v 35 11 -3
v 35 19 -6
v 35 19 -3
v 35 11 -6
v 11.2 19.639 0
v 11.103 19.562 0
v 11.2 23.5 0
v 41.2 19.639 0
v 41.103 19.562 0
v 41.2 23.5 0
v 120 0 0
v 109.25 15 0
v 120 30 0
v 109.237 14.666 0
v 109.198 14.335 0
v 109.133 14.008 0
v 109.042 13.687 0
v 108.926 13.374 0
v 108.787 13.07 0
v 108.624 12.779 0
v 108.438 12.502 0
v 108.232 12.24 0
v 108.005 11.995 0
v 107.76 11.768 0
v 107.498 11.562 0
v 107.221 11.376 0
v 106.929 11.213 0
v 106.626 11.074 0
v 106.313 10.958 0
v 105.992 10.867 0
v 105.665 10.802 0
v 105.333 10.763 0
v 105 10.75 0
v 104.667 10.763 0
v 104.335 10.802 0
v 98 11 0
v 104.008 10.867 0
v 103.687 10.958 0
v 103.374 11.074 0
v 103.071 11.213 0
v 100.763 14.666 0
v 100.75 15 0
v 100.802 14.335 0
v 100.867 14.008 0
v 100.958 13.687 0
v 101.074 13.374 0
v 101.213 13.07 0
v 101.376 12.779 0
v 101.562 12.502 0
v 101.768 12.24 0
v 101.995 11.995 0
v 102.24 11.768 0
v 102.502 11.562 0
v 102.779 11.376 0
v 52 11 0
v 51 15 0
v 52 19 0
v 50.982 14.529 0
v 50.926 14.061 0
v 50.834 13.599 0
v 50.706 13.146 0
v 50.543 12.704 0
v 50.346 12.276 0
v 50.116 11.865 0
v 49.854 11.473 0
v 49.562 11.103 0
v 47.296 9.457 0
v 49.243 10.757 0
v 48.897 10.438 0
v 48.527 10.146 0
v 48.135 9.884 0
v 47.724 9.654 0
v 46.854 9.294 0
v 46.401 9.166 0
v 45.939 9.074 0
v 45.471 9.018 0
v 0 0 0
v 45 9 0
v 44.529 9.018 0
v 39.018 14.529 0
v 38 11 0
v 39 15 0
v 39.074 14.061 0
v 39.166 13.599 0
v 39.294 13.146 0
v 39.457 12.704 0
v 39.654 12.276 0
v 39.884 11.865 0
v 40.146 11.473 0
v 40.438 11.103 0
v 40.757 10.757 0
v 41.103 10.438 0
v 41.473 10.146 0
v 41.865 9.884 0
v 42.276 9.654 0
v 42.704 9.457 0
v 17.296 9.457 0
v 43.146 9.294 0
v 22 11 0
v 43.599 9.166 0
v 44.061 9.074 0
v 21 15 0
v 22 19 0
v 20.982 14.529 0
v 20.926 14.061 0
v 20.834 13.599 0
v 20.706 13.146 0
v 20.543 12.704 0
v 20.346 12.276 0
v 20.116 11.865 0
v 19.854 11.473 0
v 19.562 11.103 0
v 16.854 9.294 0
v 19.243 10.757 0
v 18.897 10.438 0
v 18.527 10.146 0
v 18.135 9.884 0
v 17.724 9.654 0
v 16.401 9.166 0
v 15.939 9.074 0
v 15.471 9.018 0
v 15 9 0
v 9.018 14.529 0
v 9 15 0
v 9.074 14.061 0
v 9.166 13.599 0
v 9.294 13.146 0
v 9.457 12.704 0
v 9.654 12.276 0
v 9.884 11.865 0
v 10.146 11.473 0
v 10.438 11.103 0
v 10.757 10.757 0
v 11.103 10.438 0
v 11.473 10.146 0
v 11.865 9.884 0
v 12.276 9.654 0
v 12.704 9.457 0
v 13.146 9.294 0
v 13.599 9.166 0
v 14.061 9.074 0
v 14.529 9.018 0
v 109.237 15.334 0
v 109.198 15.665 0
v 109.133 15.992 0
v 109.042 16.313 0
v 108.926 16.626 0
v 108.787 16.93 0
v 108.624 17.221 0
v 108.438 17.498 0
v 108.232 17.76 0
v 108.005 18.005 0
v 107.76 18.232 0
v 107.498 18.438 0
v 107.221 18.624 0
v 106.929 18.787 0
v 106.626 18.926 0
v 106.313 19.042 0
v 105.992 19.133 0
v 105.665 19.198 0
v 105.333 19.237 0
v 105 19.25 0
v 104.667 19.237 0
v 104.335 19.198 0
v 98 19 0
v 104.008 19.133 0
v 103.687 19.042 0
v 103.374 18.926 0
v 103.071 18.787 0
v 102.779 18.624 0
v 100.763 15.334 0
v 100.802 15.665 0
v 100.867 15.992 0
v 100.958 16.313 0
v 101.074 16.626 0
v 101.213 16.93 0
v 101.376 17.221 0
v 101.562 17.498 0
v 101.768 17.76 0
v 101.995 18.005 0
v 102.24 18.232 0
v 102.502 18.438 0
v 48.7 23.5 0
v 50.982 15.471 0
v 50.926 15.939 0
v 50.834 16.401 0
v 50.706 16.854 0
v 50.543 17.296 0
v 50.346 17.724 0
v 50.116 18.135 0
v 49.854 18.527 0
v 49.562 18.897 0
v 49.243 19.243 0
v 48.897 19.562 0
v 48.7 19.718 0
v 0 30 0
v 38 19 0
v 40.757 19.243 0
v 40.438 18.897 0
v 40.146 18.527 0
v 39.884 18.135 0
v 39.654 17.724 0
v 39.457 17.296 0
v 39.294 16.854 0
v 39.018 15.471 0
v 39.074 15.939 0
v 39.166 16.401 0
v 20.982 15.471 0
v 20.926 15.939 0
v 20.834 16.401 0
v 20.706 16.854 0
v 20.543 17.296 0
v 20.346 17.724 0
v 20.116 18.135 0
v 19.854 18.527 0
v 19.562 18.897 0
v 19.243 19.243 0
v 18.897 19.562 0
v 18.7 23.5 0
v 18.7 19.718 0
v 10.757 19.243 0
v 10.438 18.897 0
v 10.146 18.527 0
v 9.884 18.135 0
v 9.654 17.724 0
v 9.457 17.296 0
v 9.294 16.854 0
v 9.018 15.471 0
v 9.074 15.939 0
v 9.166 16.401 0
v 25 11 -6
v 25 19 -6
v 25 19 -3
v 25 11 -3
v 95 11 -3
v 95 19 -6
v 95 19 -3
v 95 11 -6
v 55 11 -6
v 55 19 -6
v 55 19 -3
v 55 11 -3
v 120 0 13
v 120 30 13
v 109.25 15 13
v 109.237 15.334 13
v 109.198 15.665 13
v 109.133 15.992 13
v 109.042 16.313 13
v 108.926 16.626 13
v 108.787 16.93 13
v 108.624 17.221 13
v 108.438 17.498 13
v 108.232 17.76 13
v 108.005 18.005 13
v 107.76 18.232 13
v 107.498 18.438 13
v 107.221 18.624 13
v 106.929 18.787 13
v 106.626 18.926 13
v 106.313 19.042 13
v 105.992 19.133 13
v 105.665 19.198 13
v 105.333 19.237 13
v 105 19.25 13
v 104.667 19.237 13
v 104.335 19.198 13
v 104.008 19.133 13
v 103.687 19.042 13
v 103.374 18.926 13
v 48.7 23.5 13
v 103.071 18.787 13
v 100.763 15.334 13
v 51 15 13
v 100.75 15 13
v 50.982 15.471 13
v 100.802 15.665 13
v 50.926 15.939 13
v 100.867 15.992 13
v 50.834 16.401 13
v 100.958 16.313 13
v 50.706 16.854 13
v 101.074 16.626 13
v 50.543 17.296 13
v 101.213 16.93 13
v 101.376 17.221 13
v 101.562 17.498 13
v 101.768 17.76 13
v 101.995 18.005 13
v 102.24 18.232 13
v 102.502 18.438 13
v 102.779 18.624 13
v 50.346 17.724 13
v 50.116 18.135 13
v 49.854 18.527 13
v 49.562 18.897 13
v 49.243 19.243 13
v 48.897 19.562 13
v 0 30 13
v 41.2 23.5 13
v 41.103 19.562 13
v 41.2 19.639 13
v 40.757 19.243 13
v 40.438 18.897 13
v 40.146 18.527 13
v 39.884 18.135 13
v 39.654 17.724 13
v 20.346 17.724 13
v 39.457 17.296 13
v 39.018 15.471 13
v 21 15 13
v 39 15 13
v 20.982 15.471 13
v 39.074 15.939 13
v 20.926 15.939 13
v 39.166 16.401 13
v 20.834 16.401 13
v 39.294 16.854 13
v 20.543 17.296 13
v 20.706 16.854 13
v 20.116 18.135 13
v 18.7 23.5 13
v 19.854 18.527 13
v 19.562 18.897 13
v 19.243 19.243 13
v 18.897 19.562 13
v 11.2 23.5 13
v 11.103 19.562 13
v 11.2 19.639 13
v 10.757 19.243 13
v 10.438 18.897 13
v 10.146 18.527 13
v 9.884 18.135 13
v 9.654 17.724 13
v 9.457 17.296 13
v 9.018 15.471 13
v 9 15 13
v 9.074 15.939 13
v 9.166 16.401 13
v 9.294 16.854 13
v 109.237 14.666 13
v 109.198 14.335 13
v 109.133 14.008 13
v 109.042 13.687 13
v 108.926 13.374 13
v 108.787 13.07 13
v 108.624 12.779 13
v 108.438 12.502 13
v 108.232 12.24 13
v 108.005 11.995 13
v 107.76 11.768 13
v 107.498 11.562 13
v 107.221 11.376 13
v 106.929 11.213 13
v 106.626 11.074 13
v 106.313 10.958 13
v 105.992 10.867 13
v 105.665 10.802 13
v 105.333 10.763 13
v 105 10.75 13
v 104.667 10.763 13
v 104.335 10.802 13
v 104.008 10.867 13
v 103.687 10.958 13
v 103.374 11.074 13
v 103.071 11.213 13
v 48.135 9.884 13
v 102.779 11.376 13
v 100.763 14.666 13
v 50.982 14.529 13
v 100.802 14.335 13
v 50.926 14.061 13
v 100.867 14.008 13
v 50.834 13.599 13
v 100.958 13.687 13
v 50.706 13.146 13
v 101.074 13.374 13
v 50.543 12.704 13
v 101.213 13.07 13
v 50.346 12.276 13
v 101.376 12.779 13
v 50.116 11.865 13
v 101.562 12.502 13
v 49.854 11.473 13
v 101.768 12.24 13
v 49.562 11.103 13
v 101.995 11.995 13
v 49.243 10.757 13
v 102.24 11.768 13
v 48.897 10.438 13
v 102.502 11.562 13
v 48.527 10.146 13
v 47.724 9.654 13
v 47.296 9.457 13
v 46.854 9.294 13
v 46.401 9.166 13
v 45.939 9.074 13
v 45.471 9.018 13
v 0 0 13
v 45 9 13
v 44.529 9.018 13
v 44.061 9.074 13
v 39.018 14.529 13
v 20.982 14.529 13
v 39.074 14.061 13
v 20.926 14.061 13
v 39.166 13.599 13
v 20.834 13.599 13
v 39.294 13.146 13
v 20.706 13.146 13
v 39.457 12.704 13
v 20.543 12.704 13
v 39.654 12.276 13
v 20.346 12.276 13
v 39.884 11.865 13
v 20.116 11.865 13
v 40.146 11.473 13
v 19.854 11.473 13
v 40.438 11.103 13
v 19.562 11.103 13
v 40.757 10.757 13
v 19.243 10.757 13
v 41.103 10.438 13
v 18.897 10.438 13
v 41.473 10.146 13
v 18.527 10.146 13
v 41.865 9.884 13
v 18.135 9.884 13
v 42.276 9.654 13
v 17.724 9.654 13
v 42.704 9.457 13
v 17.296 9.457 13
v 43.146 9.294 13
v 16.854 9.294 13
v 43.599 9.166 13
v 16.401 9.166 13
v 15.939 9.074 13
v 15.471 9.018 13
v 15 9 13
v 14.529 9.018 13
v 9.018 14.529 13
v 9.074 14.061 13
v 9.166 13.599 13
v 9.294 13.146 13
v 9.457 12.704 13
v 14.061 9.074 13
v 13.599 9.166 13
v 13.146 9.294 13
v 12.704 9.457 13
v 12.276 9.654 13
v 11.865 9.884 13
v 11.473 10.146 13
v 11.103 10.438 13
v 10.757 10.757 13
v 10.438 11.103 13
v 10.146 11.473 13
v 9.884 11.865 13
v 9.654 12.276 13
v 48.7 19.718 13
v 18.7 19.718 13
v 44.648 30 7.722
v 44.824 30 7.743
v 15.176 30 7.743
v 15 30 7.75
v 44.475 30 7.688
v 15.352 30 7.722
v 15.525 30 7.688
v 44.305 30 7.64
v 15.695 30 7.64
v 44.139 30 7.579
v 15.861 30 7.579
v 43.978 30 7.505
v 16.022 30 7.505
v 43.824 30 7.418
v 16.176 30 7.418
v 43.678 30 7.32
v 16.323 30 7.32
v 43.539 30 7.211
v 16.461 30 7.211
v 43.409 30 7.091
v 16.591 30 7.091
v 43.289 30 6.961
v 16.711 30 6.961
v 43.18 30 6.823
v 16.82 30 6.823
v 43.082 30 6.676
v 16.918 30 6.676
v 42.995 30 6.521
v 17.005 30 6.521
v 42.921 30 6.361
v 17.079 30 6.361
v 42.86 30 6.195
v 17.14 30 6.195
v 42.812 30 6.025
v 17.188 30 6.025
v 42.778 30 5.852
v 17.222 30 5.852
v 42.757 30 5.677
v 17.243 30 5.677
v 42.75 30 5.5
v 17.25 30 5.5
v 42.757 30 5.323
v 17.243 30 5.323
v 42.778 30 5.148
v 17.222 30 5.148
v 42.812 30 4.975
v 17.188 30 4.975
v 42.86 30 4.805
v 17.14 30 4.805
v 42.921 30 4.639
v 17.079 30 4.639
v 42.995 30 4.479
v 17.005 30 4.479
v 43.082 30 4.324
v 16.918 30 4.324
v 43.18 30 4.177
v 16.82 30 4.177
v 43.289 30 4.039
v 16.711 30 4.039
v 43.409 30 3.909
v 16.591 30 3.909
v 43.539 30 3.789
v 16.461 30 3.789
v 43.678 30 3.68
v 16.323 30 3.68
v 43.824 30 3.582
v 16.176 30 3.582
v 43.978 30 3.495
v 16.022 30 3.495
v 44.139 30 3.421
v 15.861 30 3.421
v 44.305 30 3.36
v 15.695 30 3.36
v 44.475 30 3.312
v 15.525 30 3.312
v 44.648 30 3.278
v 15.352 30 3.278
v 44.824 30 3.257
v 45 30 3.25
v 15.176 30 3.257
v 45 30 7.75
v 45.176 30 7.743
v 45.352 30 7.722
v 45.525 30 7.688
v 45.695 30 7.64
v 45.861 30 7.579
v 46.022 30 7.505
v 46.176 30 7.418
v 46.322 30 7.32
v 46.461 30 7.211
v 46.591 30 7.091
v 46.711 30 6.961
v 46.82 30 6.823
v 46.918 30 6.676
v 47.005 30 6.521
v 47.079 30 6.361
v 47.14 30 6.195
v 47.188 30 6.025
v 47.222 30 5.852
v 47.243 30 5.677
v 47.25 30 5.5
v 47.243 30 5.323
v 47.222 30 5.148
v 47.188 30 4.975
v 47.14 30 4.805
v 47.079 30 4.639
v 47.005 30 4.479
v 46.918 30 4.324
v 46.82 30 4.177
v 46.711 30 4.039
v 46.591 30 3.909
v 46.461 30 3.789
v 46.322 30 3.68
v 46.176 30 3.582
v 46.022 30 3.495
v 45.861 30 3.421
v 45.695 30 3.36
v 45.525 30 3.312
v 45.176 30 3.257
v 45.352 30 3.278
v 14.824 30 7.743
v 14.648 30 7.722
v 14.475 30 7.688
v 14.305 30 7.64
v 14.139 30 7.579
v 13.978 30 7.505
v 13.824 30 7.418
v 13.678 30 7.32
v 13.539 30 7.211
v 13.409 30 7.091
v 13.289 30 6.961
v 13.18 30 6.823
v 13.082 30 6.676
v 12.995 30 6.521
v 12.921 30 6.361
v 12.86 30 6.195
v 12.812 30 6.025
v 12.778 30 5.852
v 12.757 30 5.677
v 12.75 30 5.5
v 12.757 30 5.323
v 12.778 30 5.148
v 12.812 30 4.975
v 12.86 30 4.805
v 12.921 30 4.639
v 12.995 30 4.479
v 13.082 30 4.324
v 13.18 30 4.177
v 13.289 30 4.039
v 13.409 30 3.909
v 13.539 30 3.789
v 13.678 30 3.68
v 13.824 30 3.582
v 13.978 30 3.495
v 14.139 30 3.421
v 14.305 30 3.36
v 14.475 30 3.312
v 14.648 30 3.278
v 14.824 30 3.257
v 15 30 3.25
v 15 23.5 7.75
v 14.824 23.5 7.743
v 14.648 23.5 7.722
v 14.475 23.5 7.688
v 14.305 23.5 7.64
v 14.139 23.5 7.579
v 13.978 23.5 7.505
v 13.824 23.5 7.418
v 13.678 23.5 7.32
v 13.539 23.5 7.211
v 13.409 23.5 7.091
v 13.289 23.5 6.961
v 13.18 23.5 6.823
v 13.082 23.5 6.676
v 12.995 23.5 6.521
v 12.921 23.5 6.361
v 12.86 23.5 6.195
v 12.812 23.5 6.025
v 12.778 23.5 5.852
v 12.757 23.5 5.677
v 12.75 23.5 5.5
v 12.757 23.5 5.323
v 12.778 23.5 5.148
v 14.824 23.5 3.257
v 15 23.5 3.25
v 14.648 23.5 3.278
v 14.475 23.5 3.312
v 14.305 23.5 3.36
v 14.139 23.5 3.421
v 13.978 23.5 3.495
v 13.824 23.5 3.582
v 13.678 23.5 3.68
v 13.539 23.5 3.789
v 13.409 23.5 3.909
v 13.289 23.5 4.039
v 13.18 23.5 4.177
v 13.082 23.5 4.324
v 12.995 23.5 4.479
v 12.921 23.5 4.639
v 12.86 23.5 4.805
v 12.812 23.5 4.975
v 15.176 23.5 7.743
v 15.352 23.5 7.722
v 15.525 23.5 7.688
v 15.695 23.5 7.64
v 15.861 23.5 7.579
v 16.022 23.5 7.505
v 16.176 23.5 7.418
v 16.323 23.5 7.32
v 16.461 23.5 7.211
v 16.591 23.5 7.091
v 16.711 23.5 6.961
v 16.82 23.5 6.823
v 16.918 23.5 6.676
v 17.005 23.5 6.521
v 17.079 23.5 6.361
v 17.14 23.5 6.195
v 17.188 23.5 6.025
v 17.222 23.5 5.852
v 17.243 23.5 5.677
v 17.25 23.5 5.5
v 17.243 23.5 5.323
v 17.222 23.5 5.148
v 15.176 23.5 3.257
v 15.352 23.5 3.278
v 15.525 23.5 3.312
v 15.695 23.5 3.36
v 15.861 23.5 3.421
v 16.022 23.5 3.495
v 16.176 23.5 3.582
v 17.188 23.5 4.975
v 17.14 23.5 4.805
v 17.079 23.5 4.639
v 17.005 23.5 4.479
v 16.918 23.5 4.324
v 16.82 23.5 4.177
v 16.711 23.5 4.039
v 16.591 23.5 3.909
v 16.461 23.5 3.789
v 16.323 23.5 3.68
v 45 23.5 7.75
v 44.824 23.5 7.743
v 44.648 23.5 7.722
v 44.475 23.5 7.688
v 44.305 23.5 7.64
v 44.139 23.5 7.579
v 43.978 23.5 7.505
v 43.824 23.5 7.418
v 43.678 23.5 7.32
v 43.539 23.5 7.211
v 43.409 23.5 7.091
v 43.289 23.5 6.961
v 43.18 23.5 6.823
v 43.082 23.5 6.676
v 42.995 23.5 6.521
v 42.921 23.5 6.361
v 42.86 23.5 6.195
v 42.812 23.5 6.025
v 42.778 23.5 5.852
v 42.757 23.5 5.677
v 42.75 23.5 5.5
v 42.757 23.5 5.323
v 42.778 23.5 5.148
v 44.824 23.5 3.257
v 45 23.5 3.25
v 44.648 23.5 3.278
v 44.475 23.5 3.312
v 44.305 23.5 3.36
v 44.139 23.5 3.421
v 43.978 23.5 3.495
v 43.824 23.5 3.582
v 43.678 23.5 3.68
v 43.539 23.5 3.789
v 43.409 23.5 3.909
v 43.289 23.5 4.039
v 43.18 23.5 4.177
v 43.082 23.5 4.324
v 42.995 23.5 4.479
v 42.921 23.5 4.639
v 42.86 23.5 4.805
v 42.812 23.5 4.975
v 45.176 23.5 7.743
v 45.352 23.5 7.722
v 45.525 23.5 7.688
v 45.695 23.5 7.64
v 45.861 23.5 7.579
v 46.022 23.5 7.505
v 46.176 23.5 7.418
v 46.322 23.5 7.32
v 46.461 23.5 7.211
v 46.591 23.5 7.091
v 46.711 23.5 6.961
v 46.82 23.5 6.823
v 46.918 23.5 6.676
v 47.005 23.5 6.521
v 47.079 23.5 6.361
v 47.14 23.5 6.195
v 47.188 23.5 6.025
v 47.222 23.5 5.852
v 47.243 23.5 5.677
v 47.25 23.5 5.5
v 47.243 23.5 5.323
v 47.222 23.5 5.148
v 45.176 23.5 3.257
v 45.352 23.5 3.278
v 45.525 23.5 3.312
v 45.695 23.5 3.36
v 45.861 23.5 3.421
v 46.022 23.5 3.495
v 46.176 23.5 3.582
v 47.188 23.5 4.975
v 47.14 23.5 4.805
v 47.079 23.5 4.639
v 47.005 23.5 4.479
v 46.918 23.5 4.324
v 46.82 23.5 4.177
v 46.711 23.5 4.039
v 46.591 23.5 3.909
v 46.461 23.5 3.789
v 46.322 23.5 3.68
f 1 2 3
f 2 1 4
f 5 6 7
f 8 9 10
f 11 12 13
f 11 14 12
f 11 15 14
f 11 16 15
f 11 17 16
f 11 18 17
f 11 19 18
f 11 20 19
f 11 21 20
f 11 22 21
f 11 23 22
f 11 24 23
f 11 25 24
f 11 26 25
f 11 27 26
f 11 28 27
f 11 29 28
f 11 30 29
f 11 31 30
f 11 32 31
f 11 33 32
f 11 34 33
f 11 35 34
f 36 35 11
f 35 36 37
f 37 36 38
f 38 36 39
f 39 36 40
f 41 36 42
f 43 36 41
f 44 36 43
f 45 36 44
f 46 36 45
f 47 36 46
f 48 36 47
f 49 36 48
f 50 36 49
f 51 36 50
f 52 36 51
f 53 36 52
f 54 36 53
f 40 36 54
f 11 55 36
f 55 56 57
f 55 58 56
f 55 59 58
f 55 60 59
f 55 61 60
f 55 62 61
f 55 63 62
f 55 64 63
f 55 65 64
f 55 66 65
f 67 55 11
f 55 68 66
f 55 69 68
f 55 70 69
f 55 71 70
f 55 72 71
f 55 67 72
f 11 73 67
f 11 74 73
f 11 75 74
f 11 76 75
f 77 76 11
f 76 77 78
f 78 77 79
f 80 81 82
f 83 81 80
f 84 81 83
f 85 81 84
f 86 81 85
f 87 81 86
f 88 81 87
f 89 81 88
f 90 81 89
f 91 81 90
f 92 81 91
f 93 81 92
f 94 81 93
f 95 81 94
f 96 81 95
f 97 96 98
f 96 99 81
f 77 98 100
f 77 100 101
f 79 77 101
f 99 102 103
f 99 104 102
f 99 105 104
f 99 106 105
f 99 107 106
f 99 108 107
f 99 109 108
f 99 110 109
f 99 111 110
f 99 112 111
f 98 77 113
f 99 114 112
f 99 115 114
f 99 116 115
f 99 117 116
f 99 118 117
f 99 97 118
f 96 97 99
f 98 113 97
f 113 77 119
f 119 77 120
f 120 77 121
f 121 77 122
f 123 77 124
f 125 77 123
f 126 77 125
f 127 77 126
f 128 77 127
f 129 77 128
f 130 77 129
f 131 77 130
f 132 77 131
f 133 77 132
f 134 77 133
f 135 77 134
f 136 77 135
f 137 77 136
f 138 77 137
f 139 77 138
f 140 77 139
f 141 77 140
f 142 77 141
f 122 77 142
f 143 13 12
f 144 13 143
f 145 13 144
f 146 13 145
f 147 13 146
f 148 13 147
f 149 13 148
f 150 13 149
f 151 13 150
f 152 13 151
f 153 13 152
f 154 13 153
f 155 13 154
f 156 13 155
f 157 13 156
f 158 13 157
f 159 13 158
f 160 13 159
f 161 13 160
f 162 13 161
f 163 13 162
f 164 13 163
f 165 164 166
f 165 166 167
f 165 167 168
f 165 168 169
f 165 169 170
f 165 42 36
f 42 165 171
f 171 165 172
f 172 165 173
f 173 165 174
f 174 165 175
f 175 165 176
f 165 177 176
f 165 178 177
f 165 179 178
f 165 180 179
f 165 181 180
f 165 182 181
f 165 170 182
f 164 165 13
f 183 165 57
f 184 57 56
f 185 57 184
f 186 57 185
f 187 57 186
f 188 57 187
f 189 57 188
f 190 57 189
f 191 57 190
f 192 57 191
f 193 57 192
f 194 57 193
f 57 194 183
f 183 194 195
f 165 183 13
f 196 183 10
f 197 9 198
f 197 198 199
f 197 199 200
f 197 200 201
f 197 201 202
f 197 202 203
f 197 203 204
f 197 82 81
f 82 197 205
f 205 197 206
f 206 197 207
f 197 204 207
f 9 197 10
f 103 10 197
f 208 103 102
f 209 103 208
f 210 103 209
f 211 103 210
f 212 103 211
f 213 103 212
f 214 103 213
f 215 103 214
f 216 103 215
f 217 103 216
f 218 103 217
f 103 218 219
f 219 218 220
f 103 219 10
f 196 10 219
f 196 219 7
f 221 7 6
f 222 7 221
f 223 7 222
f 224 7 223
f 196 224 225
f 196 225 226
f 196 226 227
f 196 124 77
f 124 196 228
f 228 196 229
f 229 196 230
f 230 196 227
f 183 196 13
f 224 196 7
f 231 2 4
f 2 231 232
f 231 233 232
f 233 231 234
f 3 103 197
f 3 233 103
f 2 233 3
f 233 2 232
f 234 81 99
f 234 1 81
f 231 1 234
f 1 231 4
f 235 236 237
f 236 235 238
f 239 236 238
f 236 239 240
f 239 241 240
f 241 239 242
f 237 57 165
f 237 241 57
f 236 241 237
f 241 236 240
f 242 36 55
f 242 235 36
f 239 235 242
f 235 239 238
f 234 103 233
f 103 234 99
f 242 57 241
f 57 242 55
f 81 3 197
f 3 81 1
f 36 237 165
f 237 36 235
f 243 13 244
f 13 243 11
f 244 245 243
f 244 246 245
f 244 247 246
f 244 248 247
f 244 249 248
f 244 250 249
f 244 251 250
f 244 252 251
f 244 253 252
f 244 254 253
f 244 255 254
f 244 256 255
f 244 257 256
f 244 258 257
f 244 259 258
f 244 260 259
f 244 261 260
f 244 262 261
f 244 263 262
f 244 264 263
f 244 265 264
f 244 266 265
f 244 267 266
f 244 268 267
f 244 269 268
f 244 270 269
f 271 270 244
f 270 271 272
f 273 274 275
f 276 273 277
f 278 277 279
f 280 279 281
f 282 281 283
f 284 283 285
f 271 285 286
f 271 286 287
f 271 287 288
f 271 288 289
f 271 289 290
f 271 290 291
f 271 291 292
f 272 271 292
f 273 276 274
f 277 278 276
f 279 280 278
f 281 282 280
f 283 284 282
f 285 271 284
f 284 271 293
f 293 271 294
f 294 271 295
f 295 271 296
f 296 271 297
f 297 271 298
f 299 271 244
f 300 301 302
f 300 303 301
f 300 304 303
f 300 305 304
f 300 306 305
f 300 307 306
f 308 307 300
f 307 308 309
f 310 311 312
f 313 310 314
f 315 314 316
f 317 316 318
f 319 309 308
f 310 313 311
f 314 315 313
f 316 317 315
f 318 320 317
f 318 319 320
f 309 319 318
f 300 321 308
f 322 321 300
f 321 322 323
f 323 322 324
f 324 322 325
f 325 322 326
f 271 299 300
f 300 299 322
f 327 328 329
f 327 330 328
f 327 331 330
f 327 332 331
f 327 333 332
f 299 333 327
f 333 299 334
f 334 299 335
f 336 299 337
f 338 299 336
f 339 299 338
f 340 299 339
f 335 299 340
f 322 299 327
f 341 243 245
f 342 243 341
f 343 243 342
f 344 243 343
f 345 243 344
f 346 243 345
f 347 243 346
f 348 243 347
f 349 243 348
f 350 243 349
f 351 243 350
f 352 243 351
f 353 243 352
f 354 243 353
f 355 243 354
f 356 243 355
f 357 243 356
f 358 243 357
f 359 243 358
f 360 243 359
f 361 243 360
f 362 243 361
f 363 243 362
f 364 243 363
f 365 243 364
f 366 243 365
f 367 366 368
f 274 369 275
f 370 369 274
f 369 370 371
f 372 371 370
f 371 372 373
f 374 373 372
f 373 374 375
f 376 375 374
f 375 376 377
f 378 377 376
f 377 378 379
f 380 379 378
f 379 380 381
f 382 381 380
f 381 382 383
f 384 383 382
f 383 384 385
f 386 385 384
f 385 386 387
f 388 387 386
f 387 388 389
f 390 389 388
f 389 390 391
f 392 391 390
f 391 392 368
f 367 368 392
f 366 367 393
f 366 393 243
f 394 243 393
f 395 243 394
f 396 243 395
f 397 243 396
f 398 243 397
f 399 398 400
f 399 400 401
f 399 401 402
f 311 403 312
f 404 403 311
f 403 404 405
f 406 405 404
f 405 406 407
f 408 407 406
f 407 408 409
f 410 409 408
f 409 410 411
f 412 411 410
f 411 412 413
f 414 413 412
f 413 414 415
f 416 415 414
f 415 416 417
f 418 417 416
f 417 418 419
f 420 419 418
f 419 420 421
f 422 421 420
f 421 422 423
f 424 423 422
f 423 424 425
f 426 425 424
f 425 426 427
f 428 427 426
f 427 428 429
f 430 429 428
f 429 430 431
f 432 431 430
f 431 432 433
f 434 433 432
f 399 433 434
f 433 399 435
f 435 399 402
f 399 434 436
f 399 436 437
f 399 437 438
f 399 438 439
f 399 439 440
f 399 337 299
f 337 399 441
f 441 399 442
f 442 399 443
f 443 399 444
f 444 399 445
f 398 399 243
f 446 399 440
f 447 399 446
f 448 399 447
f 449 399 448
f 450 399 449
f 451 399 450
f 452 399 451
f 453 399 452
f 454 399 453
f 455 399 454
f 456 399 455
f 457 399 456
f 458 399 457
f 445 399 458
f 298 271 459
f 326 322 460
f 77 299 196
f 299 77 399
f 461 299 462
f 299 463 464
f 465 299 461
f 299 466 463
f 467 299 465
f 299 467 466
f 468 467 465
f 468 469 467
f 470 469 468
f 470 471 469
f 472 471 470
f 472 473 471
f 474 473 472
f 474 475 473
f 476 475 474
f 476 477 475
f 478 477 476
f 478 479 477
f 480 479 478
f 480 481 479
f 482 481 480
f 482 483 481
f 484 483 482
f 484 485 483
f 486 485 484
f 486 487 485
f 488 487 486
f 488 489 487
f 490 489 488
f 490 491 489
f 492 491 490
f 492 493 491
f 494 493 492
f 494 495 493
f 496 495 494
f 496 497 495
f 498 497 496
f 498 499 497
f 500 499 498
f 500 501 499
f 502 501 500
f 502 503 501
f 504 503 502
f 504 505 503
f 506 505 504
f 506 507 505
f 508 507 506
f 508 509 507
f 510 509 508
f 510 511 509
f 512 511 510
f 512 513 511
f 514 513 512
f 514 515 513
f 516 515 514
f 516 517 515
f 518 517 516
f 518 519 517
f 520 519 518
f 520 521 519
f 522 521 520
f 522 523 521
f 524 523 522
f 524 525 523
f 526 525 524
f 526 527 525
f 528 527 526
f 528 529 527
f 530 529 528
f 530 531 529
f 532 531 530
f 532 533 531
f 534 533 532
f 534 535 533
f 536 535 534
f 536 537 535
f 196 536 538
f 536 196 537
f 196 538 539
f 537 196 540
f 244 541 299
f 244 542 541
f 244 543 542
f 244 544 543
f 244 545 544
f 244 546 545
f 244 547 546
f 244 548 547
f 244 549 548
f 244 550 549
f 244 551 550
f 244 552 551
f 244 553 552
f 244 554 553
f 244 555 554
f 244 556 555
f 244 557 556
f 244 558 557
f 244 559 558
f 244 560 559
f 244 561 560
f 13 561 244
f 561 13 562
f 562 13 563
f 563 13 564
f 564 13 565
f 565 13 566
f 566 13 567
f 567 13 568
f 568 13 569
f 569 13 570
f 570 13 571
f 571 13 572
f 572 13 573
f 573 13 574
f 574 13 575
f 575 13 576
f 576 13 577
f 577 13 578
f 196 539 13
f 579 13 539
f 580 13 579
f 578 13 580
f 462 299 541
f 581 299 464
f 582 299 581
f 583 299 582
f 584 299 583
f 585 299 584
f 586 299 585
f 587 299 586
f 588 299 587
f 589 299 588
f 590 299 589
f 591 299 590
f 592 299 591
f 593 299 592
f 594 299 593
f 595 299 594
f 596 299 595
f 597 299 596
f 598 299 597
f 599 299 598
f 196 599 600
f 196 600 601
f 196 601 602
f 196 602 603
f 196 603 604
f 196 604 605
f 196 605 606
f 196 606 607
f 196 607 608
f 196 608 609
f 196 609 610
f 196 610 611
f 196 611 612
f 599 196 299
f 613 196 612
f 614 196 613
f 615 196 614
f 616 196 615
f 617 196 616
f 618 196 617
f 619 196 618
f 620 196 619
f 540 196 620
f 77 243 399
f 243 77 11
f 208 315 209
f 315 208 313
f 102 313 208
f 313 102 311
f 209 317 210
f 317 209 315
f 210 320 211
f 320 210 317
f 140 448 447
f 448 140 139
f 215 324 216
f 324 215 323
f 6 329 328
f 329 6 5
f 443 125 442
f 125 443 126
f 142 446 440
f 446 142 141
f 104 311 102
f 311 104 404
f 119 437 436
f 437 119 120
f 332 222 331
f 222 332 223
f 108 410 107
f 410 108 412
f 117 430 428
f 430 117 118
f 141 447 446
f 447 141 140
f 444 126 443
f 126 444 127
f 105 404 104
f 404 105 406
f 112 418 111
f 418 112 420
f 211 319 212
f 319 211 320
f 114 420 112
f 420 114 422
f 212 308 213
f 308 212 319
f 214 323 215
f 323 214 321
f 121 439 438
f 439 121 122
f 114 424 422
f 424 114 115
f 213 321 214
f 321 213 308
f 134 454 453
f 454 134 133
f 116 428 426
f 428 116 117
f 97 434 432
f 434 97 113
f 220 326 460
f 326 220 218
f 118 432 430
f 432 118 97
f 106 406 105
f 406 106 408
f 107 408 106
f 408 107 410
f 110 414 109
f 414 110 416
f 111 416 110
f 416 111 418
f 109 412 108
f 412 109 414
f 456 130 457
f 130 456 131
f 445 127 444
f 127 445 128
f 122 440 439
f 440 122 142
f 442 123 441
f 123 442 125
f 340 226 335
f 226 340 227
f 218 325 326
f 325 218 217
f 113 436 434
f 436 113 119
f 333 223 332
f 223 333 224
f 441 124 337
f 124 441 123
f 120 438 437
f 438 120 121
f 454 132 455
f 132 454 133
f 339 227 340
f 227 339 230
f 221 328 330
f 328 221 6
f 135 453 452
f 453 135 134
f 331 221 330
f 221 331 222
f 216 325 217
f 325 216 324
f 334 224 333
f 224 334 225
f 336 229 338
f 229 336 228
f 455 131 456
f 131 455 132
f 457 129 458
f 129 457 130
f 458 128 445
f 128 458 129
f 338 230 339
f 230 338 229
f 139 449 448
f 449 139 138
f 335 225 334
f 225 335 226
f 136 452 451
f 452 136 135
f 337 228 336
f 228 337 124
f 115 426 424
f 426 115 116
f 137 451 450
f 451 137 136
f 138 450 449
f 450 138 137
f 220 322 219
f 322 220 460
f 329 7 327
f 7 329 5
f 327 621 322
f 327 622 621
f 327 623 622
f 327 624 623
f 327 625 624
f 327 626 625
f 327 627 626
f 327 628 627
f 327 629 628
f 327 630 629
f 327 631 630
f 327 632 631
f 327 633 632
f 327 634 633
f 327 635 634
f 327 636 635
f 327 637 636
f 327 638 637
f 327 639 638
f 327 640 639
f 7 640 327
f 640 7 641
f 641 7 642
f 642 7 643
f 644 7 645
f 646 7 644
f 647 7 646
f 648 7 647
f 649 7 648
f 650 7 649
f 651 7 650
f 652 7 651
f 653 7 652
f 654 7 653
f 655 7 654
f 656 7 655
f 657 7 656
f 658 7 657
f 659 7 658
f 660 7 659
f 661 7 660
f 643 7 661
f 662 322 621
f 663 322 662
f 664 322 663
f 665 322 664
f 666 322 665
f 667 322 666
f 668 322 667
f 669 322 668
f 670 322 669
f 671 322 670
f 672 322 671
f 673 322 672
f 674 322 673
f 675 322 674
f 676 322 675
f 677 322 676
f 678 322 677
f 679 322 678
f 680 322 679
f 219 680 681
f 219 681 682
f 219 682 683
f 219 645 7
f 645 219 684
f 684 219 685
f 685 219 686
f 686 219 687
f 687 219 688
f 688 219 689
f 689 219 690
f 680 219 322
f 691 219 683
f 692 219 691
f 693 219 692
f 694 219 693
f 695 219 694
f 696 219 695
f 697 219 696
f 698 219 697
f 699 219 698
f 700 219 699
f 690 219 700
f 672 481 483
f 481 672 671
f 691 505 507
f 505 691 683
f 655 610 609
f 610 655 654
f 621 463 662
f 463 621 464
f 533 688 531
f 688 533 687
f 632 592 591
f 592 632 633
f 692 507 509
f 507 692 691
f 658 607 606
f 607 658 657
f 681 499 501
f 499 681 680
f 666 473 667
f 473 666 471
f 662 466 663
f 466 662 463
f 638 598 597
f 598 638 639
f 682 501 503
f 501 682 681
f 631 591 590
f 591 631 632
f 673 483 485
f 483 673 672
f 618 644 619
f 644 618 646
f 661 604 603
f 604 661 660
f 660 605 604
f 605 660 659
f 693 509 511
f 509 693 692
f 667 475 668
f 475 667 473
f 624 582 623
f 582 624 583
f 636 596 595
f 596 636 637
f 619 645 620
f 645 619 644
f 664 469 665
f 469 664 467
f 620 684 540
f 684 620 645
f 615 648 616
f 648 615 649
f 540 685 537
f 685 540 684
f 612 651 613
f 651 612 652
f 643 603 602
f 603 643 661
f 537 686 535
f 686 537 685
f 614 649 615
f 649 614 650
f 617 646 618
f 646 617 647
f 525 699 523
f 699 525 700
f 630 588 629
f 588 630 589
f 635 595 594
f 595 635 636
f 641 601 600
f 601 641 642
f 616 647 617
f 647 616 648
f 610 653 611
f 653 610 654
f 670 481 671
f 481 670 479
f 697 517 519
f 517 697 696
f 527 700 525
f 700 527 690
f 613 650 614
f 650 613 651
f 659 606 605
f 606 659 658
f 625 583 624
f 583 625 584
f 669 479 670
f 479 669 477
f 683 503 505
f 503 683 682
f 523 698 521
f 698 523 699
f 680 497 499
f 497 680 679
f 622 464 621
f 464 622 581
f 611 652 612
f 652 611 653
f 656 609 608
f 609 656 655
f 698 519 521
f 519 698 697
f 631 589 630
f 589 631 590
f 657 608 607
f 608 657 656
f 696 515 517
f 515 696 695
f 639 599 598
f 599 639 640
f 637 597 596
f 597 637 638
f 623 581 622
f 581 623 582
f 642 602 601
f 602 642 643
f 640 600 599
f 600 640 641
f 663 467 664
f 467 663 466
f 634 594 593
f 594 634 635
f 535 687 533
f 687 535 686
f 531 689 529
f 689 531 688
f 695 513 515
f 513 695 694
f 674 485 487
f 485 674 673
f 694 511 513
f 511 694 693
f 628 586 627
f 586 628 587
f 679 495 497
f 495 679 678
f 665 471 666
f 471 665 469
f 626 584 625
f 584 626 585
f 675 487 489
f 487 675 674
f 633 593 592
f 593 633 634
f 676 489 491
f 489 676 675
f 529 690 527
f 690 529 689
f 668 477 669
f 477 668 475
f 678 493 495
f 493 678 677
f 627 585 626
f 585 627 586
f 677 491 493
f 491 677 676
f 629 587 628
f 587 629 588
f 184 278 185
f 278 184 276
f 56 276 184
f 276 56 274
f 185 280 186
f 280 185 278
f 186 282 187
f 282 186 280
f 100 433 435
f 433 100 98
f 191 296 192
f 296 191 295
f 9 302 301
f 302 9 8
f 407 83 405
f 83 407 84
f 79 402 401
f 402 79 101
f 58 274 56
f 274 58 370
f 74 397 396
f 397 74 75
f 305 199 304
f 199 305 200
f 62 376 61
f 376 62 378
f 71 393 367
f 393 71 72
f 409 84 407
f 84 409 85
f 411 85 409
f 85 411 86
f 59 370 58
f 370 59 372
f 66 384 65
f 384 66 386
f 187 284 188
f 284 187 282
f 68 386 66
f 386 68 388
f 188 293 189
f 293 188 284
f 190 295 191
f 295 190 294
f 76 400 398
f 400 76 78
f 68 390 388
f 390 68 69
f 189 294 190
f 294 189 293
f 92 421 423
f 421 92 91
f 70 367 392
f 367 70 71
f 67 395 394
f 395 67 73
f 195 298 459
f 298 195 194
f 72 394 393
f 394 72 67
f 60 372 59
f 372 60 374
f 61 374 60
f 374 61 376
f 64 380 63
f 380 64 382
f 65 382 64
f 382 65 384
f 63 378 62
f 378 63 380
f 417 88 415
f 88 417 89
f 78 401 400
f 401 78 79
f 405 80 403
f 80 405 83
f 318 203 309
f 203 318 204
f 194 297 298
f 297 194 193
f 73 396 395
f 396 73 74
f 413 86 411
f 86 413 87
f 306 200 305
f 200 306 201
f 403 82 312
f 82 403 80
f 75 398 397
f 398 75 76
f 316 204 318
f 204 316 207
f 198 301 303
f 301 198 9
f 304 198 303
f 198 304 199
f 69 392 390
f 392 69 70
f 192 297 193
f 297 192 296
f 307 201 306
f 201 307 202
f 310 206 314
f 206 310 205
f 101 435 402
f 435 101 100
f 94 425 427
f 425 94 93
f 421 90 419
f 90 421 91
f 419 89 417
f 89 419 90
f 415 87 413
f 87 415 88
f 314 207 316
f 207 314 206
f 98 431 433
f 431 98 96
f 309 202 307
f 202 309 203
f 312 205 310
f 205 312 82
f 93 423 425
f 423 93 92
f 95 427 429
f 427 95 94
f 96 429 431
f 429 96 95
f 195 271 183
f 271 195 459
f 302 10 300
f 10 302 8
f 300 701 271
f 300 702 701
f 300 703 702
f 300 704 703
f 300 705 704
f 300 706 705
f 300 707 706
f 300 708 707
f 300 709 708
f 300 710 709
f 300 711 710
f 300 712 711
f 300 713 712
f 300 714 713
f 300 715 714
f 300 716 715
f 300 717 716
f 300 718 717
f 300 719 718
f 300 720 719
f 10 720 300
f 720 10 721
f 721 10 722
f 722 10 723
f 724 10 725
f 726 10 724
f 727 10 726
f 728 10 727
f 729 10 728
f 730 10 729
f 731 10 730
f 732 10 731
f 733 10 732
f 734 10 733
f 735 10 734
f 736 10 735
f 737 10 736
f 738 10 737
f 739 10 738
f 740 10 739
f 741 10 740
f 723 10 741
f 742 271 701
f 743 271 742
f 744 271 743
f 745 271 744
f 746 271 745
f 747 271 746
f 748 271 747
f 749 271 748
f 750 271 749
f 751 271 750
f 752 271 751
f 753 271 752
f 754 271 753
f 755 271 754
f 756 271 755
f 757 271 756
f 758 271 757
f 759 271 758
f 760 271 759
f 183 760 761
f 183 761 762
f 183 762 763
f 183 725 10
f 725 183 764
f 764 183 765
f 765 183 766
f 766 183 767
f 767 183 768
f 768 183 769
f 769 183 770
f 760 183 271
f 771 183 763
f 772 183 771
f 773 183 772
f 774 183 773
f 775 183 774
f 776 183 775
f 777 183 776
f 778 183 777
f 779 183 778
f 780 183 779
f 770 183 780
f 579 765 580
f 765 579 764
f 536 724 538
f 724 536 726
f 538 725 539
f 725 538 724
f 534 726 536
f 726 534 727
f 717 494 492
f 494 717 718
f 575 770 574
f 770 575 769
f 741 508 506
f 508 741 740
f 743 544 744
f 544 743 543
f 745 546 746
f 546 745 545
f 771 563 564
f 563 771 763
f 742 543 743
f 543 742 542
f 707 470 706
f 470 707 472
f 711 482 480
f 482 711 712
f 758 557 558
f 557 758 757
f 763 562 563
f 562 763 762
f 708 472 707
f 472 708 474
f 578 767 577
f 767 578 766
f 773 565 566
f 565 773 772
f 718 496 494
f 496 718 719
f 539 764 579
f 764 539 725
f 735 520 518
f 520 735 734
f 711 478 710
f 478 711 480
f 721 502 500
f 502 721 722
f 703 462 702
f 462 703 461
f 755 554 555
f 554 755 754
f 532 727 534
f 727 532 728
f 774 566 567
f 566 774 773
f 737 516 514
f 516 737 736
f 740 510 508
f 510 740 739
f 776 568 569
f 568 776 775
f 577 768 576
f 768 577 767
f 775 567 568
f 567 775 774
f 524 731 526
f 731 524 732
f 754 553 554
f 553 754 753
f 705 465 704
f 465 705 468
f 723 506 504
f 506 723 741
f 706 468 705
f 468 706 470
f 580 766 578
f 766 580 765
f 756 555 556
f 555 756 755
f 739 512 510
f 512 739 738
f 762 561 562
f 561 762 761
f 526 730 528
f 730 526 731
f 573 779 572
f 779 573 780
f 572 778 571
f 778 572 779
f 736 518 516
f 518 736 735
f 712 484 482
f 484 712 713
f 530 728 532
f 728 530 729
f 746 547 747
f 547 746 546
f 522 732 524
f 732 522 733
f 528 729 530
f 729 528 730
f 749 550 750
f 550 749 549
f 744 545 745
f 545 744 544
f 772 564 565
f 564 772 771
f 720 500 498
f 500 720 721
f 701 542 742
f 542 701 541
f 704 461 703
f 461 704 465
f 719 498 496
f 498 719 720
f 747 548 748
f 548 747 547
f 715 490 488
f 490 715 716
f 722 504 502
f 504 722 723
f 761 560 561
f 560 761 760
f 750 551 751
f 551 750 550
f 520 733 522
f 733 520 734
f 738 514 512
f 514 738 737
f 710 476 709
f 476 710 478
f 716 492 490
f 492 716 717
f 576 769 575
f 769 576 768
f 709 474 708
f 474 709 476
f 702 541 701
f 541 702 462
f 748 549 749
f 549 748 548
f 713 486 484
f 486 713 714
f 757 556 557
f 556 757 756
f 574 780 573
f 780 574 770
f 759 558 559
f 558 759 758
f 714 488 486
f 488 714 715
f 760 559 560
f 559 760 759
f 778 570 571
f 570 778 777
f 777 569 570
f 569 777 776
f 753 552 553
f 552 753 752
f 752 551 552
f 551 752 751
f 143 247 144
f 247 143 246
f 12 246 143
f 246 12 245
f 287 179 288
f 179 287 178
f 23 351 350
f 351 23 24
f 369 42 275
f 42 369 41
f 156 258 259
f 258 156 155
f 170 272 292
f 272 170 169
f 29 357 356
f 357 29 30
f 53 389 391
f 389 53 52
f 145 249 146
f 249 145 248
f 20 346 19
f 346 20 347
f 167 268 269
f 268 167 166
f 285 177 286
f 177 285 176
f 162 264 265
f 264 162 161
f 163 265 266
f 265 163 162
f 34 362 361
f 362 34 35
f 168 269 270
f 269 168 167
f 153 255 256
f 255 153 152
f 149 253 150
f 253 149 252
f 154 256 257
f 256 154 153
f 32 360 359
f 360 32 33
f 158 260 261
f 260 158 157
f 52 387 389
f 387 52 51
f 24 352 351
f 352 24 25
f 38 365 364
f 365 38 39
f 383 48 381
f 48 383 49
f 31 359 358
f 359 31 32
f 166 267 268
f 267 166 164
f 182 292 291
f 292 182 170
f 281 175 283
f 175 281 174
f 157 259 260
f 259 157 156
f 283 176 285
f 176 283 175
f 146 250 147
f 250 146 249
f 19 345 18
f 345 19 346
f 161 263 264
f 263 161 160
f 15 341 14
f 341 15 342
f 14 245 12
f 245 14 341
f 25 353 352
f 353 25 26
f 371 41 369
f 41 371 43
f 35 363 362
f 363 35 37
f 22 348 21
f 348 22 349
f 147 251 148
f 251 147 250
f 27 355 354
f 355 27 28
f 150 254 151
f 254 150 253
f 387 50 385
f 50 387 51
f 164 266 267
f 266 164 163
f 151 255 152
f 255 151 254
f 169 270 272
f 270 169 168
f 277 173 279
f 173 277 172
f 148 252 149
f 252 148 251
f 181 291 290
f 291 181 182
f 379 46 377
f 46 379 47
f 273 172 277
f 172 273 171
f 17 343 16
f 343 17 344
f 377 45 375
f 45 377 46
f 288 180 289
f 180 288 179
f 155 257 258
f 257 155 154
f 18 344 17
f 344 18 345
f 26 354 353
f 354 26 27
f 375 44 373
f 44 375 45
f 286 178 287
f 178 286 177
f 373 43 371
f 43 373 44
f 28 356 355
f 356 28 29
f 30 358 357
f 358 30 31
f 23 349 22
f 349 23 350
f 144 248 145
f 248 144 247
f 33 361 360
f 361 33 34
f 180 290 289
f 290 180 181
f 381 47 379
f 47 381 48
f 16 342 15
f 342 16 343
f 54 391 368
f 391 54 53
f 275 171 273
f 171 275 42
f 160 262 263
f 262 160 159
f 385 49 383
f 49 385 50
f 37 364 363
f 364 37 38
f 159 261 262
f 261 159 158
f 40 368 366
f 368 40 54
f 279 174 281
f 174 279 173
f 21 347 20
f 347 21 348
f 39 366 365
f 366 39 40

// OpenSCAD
$fn=80;

length = 120;
height = 13;
depth = 30;

rail1_length = 10;
rail1_height = 6;
rail1_depth = 8;
rail1_pos = 25;

rail2_length = 40;
rail2_height = rail1_height;
rail2_depth = rail1_depth;
rail2_pos = 55;

fix_hole_dia = 8.5;
drill_hole_dia = 12;

drill_hole1_pos = 15;

drill_hole2_pos = 45;

fix_hole_pos = 105;


difference() {
    
    union() {
        cube ([length, depth, height]);

        translate([0, 
                   (depth/2) - (rail1_depth/2),
                   -1 * rail1_height]) {
            translate([rail1_pos,0,0]) cube ([rail1_length, rail1_depth, rail1_height]);

            translate([rail2_pos,0,0]) cube ([rail2_length, rail2_depth, rail2_height]);
        }
        
        translate([0,(depth/2) - (rail1_depth/2),0]) {
            translate ([28,0,0]) rotate([0,90,90]) triangle(rail1_height,6,rail1_depth);
            translate ([58,0,0]) rotate([0,90,90]) triangle(rail1_height,6,rail1_depth);
        }
        
        translate([0,(depth/2) + (rail1_depth/2),0]) {
            translate ([32,0,0]) rotate([0,90,270]) triangle(rail1_height,6,rail1_depth);
            translate ([92,0,0]) rotate([0,90,270]) triangle(rail1_height,6,rail1_depth);
            

        }
    }
    

    
    translate([0, 
           (depth/2),
           -1]) {
        translate([drill_hole1_pos,0,0]) {
            cylinder(d=drill_hole_dia, h=height+2);
            translate([-3.8,4.5,0]) cube([7.5, 4, 30]);
            rotate([0,90,90]) translate([-1*(height/2),0,0]) cylinder(d=4.5, h=20);

        }
        translate([drill_hole2_pos,0,0]) {
                cylinder(d=drill_hole_dia, h=height+2);
                translate([-3.8,4.5,0]) cube([7.5, 4, 30]);
                rotate([0,90,90]) translate([-1*(height/2),0,0]) cylinder(d=4.5, h=20);
            }
        translate([fix_hole_pos,0,0]) cylinder(d=fix_hole_dia, h=height+2);
        
    }
}




/**
 * Simple triangles library
 *
 * Authors:
 *   - Eero 'rambo' af Heurlin 2010-
 *
 * License: LGPL 2.1
 */


/**
 * Standard right-angled triangle
 *
 * @param number  o_len  Length of the opposite side
 * @param number  a_len  Length of the adjacent side
 * @param number  depth  How wide/deep the triangle is in the 3rd dimension
 * @param boolean center Whether to center the triangle on the origin
 * @todo a better way ?
 */
module triangle(o_len, a_len, depth, center=false)
{
    centroid = center ? [-a_len/3, -o_len/3, -depth/2] : [0, 0, 0];
    translate(centroid) linear_extrude(height=depth)
    {
        polygon(points=[[0,0],[a_len,0],[0,o_len]], paths=[[0,1,2]]);
    }
}

/**
 * Standard right-angled triangle (tangent version)
 *
 * @param number  tan_angle Angle of adjacent to hypotenuse (ie tangent)
 * @param number  a_len     Length of the adjacent side
 * @param number  depth     How wide/deep the triangle is in the 3rd dimension
 * @param boolean center    Whether to center the triangle on the origin
 */
module a_triangle(tan_angle, a_len, depth, center=false)
{
    triangle(tan(tan_angle) * a_len, a_len, depth, center);
}

// Tests:
module test_triangle() { triangle(5, 5, 5); }
module test_a_triangle() { a_triangle(45, 5, 5); }
module test_triangles()
{
    // Generate a bunch of triangles by sizes
    for (i = [1:10])
    {
        translate([i*7, -30, i*7])
        {
            triangle(i*5, sqrt(i*5+pow(i,2)), 5);
        }
    }

    // Generate a bunch of triangles by angle
    for (i = [1:85/5])
    {
        translate([i*7, 22, i*7])
        {
            a_triangle(i*5, 10, 5);
        }
    }
}
